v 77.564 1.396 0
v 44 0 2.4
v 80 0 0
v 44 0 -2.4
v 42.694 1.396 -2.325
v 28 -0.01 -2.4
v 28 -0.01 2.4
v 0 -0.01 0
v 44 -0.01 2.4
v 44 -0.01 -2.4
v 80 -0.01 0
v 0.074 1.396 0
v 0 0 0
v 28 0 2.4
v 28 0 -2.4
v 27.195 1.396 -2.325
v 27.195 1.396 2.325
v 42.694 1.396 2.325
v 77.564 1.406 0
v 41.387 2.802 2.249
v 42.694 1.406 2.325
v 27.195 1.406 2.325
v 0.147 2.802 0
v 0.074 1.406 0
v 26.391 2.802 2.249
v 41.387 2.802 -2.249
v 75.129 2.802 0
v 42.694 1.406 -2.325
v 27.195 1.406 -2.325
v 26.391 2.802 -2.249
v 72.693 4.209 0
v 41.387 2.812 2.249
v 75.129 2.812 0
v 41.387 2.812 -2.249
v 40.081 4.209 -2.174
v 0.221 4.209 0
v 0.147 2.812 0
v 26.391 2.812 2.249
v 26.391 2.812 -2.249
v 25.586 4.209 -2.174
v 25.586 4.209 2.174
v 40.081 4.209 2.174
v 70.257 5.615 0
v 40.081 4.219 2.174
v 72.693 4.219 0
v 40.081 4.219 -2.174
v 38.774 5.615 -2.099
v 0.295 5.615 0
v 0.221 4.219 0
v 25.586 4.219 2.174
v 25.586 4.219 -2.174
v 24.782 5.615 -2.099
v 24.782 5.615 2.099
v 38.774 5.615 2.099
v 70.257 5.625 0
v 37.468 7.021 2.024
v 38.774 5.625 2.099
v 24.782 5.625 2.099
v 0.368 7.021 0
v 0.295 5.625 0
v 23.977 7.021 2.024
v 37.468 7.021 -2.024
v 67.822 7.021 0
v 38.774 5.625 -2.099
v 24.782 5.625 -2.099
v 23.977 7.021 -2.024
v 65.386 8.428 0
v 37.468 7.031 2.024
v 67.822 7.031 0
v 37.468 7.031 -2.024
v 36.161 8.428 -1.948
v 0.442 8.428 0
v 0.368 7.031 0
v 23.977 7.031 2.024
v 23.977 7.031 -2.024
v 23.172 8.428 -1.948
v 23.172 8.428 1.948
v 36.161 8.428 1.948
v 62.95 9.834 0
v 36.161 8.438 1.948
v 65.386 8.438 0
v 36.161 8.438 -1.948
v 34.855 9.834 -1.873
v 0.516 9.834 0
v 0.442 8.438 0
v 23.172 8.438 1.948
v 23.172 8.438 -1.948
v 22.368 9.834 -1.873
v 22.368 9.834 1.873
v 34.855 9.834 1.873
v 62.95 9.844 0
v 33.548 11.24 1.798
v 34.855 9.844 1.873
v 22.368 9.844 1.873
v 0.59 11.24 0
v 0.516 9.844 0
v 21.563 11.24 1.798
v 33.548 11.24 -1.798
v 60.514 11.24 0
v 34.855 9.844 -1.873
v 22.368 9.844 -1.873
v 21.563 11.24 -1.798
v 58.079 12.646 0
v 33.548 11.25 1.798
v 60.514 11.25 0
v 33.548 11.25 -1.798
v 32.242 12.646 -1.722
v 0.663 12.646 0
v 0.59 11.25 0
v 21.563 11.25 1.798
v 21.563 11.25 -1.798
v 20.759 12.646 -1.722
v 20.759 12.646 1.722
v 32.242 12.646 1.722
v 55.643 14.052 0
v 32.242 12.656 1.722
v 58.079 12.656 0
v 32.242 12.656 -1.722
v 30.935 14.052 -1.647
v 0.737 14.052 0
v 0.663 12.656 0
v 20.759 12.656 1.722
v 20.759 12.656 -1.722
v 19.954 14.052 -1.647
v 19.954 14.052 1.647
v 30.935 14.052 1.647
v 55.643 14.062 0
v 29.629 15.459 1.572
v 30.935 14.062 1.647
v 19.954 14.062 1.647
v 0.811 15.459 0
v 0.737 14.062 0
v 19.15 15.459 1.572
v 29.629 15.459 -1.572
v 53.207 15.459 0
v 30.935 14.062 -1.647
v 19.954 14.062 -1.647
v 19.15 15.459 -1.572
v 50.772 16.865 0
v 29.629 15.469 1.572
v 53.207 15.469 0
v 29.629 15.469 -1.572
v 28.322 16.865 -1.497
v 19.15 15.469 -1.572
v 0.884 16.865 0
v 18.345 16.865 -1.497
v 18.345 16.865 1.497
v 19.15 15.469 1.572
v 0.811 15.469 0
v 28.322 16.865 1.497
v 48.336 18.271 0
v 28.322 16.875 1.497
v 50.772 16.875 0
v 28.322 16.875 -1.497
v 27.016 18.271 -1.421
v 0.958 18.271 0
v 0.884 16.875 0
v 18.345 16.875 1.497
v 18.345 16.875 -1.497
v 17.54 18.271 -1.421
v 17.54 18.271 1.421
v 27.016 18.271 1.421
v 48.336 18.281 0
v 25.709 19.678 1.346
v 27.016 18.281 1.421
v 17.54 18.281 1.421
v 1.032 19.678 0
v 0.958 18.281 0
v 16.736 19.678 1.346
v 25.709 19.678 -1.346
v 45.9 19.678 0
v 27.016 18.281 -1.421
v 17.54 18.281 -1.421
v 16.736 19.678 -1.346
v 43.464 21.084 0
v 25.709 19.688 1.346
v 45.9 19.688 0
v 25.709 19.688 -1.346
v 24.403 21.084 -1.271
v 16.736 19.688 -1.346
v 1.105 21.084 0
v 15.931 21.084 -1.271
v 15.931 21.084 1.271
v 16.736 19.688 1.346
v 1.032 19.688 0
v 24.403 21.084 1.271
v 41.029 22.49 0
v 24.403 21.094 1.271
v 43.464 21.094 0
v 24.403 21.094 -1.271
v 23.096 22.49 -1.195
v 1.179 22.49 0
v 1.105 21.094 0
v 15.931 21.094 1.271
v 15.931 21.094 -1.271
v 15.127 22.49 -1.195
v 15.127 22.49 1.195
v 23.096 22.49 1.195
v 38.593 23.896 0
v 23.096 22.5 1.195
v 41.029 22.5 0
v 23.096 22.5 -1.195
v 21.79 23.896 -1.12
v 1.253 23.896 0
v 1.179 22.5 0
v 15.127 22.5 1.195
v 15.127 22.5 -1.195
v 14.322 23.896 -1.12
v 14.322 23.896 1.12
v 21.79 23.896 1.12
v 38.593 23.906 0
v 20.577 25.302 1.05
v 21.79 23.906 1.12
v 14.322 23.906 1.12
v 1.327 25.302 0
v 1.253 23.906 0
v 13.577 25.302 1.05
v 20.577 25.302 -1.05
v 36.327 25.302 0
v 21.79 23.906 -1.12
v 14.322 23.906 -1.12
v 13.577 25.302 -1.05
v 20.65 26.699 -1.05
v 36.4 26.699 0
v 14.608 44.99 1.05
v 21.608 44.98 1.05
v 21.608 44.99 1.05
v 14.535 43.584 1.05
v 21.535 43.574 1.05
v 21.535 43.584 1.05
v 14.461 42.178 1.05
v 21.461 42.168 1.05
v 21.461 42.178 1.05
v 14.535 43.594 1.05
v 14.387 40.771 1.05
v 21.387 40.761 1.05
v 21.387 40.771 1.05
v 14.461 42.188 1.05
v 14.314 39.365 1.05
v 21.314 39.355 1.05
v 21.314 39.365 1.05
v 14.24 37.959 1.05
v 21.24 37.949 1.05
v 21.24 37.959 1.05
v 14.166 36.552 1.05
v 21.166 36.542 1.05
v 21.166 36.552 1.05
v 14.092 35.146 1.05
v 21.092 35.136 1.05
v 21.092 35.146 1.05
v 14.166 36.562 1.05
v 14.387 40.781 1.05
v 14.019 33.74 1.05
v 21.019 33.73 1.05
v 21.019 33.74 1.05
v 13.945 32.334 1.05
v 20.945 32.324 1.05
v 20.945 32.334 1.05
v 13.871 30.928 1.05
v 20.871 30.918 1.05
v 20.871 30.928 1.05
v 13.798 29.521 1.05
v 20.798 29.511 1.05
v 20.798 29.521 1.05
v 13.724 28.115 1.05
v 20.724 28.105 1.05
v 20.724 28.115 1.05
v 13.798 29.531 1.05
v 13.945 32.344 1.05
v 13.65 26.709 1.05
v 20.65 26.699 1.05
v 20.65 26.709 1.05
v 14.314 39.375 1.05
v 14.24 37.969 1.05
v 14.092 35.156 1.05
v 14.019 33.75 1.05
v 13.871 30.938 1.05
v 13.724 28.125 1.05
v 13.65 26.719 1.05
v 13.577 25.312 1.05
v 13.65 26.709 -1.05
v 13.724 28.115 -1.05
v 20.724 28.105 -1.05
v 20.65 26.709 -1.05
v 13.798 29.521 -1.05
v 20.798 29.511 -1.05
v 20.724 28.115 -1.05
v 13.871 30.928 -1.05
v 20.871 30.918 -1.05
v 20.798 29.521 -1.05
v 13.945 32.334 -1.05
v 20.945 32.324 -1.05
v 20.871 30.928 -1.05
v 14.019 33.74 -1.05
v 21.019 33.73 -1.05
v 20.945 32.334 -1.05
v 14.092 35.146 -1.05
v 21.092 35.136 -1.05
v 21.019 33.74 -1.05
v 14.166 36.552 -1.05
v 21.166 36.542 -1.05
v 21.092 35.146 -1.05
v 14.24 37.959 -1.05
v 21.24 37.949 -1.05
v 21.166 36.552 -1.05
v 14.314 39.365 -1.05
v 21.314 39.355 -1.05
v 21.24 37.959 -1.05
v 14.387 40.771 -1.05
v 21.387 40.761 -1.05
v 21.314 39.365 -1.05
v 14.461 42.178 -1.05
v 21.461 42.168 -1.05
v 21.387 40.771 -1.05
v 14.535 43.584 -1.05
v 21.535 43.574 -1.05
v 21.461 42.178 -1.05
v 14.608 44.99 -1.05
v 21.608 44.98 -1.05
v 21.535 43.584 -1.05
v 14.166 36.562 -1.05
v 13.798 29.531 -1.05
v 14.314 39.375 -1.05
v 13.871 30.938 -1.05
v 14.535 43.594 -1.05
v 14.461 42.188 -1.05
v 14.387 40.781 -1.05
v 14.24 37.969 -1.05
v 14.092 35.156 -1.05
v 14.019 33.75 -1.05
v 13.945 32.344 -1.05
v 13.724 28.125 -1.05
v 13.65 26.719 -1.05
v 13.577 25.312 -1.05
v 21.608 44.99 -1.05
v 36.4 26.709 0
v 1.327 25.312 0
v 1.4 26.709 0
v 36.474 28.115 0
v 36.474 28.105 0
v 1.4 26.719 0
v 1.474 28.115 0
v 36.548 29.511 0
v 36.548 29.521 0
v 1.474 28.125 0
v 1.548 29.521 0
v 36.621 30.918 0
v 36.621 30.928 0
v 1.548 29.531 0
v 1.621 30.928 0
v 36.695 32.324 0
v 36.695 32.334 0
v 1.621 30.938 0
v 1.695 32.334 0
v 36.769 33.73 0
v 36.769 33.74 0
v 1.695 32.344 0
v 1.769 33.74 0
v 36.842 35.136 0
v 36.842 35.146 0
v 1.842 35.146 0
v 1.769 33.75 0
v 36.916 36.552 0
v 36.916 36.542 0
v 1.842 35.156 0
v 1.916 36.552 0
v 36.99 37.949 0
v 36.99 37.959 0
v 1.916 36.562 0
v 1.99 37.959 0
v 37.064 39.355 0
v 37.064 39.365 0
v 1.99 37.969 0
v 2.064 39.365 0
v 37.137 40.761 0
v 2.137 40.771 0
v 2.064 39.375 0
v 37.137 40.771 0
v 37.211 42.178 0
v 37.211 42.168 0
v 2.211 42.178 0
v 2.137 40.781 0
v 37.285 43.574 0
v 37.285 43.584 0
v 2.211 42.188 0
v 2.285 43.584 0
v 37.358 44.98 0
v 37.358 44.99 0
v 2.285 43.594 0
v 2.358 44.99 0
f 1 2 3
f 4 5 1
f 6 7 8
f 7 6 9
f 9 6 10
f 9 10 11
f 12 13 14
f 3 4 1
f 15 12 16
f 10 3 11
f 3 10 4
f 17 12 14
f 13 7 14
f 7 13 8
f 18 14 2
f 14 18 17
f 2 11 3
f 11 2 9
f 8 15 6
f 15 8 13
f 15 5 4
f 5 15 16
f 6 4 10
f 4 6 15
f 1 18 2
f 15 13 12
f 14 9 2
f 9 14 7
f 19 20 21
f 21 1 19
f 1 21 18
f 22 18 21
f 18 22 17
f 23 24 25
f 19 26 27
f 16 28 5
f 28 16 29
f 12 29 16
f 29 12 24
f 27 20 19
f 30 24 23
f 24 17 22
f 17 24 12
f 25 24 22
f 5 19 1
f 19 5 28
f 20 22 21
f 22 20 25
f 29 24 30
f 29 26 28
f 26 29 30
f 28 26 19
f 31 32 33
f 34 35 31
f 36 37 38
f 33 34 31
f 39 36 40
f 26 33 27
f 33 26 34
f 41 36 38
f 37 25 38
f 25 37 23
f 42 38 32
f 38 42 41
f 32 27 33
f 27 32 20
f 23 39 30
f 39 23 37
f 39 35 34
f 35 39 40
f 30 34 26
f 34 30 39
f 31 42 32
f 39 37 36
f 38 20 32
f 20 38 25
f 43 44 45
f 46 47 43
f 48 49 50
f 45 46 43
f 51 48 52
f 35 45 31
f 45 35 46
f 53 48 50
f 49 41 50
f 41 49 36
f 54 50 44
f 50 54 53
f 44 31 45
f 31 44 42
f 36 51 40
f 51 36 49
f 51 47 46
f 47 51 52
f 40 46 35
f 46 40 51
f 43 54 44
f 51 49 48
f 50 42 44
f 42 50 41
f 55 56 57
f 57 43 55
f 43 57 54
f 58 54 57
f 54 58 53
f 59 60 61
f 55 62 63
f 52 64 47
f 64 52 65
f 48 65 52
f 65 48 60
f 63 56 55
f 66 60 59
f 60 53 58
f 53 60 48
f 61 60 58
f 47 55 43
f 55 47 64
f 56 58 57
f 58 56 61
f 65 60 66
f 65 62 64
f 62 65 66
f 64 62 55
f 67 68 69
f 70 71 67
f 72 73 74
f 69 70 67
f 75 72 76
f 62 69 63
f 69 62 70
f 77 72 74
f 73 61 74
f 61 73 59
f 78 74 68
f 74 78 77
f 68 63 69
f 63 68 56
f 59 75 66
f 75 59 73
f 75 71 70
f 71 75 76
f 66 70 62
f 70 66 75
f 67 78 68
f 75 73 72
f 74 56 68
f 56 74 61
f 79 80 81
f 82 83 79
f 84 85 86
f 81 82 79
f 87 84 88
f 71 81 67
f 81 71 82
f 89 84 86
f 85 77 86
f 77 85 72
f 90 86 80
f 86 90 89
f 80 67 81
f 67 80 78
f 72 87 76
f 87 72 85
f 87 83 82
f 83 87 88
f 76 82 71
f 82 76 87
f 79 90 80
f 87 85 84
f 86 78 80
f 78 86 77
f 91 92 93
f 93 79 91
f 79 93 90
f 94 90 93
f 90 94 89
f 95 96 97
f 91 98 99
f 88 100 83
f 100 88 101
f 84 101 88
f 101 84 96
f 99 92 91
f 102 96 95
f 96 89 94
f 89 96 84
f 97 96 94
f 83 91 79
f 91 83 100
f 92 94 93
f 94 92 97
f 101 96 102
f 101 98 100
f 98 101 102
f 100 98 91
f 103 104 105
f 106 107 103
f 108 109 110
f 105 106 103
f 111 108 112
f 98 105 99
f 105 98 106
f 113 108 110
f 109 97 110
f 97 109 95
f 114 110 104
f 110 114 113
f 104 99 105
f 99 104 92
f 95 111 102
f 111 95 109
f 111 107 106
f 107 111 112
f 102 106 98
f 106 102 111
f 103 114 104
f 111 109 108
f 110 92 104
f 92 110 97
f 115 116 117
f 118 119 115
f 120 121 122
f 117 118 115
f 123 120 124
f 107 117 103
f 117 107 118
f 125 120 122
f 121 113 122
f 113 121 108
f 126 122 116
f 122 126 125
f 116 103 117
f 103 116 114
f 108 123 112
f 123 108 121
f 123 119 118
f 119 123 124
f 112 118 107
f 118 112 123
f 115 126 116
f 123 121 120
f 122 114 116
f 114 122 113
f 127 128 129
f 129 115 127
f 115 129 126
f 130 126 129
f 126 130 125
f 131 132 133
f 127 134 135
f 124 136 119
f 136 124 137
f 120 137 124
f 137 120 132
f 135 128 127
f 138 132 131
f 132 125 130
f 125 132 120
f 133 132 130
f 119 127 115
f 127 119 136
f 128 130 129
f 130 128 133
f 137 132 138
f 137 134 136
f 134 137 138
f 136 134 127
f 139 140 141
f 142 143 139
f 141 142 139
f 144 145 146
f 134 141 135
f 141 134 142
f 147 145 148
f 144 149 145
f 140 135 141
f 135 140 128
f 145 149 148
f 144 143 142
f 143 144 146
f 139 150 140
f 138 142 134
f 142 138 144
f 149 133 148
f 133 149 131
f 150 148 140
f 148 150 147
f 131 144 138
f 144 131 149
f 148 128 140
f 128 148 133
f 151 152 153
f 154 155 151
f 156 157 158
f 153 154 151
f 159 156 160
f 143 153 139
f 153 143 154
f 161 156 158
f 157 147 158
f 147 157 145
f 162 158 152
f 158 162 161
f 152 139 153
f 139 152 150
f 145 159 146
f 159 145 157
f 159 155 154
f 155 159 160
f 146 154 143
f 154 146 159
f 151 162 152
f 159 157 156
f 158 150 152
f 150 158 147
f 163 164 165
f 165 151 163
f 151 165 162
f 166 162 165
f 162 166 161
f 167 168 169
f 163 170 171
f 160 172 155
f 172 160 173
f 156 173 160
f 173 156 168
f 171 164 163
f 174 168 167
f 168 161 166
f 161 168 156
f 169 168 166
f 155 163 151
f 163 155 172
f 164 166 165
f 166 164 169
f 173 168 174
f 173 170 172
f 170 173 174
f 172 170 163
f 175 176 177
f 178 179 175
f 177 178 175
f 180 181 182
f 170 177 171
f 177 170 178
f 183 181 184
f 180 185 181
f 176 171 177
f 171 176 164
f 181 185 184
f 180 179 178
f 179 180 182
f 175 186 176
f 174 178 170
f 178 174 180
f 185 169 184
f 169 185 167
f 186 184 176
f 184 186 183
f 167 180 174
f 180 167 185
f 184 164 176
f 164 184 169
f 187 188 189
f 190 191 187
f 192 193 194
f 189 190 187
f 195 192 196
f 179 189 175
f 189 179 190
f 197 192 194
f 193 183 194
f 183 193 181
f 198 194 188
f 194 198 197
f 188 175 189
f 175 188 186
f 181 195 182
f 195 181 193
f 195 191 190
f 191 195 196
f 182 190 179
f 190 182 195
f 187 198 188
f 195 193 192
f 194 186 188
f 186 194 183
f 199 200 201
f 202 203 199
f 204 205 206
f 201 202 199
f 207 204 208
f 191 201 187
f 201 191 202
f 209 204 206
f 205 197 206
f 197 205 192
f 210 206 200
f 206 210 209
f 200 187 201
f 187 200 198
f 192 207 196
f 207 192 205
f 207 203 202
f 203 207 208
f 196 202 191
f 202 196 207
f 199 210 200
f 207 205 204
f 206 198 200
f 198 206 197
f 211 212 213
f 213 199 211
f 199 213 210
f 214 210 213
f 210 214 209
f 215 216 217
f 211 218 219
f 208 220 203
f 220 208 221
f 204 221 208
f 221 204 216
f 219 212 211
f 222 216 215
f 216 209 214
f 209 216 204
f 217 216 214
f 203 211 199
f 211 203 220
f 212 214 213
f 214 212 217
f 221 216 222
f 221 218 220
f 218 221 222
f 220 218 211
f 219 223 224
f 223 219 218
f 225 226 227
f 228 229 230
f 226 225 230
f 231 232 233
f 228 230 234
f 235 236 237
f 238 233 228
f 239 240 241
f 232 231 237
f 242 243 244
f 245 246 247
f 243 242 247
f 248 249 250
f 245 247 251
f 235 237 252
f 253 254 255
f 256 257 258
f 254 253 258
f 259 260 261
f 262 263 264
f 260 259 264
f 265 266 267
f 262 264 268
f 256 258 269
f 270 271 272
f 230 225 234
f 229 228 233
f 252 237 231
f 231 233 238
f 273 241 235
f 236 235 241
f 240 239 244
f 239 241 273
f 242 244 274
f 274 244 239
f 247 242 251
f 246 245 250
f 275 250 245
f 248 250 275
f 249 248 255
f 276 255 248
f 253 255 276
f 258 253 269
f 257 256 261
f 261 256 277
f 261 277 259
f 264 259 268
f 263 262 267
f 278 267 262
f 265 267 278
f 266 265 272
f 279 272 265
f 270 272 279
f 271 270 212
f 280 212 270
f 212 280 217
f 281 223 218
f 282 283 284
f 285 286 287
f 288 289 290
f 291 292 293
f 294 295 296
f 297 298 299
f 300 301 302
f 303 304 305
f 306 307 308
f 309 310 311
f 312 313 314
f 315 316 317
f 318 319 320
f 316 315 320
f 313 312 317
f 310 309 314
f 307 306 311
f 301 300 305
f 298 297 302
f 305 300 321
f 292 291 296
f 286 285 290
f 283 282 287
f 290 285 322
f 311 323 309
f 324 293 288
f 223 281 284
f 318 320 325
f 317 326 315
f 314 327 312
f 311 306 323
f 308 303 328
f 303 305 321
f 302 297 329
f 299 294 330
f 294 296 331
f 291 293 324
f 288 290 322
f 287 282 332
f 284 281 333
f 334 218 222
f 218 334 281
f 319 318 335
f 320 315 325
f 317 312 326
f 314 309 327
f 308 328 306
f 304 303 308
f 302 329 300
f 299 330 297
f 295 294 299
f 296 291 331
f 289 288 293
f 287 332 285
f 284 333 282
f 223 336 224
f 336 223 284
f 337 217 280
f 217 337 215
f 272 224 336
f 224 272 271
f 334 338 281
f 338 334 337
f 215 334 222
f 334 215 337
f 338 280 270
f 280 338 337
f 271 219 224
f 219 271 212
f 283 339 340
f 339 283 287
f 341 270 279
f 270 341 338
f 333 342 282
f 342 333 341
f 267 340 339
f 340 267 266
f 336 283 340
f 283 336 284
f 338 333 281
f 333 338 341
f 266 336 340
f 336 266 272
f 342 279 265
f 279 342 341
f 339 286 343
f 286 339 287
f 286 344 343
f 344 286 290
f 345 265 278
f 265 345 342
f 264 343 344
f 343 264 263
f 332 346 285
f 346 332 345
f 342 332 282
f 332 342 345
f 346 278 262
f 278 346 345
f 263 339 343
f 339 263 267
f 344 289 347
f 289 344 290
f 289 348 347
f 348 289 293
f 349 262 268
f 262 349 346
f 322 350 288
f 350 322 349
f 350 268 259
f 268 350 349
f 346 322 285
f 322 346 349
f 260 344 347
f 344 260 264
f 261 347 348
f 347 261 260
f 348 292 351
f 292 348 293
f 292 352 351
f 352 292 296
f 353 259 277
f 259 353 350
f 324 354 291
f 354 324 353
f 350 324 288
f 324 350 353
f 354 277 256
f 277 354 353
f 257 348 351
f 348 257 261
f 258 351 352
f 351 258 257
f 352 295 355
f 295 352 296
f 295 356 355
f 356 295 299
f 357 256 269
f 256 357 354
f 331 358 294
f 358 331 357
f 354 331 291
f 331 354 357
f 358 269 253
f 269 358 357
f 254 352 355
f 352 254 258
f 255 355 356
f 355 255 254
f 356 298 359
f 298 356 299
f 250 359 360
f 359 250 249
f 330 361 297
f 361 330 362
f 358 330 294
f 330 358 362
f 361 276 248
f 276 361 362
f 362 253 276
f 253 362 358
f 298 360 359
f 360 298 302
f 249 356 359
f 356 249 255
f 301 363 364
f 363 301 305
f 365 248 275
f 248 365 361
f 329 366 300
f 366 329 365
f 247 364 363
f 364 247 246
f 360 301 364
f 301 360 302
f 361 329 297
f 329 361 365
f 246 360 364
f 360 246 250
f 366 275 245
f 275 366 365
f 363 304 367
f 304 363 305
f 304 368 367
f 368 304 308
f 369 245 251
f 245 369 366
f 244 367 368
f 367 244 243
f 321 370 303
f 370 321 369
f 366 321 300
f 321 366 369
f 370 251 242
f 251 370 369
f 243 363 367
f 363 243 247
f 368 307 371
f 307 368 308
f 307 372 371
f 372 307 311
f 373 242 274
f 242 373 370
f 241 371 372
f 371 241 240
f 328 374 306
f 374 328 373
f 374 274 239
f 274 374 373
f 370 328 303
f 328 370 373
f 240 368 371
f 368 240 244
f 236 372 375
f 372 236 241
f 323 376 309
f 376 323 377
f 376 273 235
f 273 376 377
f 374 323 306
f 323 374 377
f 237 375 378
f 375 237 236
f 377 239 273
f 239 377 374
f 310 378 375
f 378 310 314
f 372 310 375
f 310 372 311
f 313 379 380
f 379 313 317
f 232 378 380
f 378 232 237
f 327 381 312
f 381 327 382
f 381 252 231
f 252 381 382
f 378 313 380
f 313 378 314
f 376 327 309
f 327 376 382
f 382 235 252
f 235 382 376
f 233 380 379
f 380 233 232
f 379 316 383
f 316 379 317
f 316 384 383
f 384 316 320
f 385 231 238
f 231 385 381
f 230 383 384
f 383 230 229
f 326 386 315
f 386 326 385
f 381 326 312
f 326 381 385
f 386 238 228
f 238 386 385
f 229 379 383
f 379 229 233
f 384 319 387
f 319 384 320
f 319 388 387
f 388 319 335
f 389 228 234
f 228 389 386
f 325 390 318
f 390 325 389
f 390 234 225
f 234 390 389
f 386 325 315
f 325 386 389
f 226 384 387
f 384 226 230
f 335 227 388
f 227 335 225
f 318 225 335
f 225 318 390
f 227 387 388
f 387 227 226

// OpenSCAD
// =============================================================
// AIM-9 Sidewinder style REAR fin (wing)
// - Clipped delta / trapezoidal planform
// - ~60deg swept leading edge
// - Near-perpendicular trailing edge
// - Symmetric hexagonal (double-wedge) airfoil
// - No mounting features (add yours later)
// =============================================================
// Coordinate system:
//   X = chordwise  (LE near +X, TE near origin)
//   Y = spanwise   (root at Y=0, tip at +Y)
//   Z = thickness  (symmetric about Z=0)
// =============================================================

/* [Planform] */
root_chord       = 80;     // chord at the root (mm)
tip_chord        = 35;     // chord at the tip - clipped, not pointed (mm)
span             = 45;     // root-to-tip distance (mm)

leading_sweep    = 60;     // LE sweep angle (deg)
trailing_sweep   = 3;      // small forward sweep on TE (deg, 0 = square)

/* [Airfoil - symmetric hexagonal / double-wedge] */
thickness_pct    = 0.06;   // max thickness as fraction of local chord
flat_start_pct   = 0.35;   // chord fraction where flat top begins
flat_end_pct     = 0.55;   // chord fraction where flat top ends

$fn = 64;

// =============================================================
// Planform helpers
// =============================================================
// Single sweep angle on the leading edge - simple delta
function le_x_at_y(y) = root_chord - y * tan(leading_sweep);

// Trailing edge - mostly perpendicular to root
function te_x_at_y(y) = 0 + y * tan(trailing_sweep);

// =============================================================
// Hexagonal airfoil cross-section
// =============================================================
module hex_airfoil_2d(c) {
    t = c * thickness_pct;
    x1 = c * flat_start_pct;
    x2 = c * flat_end_pct;
    polygon([
        [0,   0],
        [x1,  t/2],
        [x2,  t/2],
        [c,   0],
        [x2, -t/2],
        [x1, -t/2]
    ]);
}

// =============================================================
// Fin solid - stack airfoils along span and hull adjacent ones
//
// For a clipped tip, we clamp the leading edge so the local chord
// at the tip is at least tip_chord. This naturally produces the
// trapezoidal shape: pure delta until the tip is reached, then
// a flat tip edge.
// =============================================================
module fin() {
    n_stations = 32;

    // Local chord at spanwise position y, with tip clipping
    function local_chord(y) =
        let(le = le_x_at_y(y), te = te_x_at_y(y))
            max(le - te, tip_chord);

    // For the LE position with clipping: when natural LE would
    // give chord < tip_chord, push LE forward to maintain tip_chord
    function le_x_clipped(y) =
        let(natural_le = le_x_at_y(y), te = te_x_at_y(y))
            max(natural_le, te + tip_chord);

    for (i = [0 : n_stations-1]) {
        y0 = i * span / n_stations;
        y1 = (i+1) * span / n_stations;
        c0 = local_chord(y0);
        c1 = local_chord(y1);
        x0 = te_x_at_y(y0);
        x1 = te_x_at_y(y1);
        if (c0 > 0.5 && c1 > 0.5) {
            hull() {
                translate([x0, y0, 0])
                    rotate([90, 0, 0])
                        linear_extrude(height = 0.01)
                            hex_airfoil_2d(c0);
                translate([x1, y1 - 0.01, 0])
                    rotate([90, 0, 0])
                        linear_extrude(height = 0.01)
                            hex_airfoil_2d(c1);
            }
        }
    }
}

// =============================================================
// Render
// =============================================================
fin();
